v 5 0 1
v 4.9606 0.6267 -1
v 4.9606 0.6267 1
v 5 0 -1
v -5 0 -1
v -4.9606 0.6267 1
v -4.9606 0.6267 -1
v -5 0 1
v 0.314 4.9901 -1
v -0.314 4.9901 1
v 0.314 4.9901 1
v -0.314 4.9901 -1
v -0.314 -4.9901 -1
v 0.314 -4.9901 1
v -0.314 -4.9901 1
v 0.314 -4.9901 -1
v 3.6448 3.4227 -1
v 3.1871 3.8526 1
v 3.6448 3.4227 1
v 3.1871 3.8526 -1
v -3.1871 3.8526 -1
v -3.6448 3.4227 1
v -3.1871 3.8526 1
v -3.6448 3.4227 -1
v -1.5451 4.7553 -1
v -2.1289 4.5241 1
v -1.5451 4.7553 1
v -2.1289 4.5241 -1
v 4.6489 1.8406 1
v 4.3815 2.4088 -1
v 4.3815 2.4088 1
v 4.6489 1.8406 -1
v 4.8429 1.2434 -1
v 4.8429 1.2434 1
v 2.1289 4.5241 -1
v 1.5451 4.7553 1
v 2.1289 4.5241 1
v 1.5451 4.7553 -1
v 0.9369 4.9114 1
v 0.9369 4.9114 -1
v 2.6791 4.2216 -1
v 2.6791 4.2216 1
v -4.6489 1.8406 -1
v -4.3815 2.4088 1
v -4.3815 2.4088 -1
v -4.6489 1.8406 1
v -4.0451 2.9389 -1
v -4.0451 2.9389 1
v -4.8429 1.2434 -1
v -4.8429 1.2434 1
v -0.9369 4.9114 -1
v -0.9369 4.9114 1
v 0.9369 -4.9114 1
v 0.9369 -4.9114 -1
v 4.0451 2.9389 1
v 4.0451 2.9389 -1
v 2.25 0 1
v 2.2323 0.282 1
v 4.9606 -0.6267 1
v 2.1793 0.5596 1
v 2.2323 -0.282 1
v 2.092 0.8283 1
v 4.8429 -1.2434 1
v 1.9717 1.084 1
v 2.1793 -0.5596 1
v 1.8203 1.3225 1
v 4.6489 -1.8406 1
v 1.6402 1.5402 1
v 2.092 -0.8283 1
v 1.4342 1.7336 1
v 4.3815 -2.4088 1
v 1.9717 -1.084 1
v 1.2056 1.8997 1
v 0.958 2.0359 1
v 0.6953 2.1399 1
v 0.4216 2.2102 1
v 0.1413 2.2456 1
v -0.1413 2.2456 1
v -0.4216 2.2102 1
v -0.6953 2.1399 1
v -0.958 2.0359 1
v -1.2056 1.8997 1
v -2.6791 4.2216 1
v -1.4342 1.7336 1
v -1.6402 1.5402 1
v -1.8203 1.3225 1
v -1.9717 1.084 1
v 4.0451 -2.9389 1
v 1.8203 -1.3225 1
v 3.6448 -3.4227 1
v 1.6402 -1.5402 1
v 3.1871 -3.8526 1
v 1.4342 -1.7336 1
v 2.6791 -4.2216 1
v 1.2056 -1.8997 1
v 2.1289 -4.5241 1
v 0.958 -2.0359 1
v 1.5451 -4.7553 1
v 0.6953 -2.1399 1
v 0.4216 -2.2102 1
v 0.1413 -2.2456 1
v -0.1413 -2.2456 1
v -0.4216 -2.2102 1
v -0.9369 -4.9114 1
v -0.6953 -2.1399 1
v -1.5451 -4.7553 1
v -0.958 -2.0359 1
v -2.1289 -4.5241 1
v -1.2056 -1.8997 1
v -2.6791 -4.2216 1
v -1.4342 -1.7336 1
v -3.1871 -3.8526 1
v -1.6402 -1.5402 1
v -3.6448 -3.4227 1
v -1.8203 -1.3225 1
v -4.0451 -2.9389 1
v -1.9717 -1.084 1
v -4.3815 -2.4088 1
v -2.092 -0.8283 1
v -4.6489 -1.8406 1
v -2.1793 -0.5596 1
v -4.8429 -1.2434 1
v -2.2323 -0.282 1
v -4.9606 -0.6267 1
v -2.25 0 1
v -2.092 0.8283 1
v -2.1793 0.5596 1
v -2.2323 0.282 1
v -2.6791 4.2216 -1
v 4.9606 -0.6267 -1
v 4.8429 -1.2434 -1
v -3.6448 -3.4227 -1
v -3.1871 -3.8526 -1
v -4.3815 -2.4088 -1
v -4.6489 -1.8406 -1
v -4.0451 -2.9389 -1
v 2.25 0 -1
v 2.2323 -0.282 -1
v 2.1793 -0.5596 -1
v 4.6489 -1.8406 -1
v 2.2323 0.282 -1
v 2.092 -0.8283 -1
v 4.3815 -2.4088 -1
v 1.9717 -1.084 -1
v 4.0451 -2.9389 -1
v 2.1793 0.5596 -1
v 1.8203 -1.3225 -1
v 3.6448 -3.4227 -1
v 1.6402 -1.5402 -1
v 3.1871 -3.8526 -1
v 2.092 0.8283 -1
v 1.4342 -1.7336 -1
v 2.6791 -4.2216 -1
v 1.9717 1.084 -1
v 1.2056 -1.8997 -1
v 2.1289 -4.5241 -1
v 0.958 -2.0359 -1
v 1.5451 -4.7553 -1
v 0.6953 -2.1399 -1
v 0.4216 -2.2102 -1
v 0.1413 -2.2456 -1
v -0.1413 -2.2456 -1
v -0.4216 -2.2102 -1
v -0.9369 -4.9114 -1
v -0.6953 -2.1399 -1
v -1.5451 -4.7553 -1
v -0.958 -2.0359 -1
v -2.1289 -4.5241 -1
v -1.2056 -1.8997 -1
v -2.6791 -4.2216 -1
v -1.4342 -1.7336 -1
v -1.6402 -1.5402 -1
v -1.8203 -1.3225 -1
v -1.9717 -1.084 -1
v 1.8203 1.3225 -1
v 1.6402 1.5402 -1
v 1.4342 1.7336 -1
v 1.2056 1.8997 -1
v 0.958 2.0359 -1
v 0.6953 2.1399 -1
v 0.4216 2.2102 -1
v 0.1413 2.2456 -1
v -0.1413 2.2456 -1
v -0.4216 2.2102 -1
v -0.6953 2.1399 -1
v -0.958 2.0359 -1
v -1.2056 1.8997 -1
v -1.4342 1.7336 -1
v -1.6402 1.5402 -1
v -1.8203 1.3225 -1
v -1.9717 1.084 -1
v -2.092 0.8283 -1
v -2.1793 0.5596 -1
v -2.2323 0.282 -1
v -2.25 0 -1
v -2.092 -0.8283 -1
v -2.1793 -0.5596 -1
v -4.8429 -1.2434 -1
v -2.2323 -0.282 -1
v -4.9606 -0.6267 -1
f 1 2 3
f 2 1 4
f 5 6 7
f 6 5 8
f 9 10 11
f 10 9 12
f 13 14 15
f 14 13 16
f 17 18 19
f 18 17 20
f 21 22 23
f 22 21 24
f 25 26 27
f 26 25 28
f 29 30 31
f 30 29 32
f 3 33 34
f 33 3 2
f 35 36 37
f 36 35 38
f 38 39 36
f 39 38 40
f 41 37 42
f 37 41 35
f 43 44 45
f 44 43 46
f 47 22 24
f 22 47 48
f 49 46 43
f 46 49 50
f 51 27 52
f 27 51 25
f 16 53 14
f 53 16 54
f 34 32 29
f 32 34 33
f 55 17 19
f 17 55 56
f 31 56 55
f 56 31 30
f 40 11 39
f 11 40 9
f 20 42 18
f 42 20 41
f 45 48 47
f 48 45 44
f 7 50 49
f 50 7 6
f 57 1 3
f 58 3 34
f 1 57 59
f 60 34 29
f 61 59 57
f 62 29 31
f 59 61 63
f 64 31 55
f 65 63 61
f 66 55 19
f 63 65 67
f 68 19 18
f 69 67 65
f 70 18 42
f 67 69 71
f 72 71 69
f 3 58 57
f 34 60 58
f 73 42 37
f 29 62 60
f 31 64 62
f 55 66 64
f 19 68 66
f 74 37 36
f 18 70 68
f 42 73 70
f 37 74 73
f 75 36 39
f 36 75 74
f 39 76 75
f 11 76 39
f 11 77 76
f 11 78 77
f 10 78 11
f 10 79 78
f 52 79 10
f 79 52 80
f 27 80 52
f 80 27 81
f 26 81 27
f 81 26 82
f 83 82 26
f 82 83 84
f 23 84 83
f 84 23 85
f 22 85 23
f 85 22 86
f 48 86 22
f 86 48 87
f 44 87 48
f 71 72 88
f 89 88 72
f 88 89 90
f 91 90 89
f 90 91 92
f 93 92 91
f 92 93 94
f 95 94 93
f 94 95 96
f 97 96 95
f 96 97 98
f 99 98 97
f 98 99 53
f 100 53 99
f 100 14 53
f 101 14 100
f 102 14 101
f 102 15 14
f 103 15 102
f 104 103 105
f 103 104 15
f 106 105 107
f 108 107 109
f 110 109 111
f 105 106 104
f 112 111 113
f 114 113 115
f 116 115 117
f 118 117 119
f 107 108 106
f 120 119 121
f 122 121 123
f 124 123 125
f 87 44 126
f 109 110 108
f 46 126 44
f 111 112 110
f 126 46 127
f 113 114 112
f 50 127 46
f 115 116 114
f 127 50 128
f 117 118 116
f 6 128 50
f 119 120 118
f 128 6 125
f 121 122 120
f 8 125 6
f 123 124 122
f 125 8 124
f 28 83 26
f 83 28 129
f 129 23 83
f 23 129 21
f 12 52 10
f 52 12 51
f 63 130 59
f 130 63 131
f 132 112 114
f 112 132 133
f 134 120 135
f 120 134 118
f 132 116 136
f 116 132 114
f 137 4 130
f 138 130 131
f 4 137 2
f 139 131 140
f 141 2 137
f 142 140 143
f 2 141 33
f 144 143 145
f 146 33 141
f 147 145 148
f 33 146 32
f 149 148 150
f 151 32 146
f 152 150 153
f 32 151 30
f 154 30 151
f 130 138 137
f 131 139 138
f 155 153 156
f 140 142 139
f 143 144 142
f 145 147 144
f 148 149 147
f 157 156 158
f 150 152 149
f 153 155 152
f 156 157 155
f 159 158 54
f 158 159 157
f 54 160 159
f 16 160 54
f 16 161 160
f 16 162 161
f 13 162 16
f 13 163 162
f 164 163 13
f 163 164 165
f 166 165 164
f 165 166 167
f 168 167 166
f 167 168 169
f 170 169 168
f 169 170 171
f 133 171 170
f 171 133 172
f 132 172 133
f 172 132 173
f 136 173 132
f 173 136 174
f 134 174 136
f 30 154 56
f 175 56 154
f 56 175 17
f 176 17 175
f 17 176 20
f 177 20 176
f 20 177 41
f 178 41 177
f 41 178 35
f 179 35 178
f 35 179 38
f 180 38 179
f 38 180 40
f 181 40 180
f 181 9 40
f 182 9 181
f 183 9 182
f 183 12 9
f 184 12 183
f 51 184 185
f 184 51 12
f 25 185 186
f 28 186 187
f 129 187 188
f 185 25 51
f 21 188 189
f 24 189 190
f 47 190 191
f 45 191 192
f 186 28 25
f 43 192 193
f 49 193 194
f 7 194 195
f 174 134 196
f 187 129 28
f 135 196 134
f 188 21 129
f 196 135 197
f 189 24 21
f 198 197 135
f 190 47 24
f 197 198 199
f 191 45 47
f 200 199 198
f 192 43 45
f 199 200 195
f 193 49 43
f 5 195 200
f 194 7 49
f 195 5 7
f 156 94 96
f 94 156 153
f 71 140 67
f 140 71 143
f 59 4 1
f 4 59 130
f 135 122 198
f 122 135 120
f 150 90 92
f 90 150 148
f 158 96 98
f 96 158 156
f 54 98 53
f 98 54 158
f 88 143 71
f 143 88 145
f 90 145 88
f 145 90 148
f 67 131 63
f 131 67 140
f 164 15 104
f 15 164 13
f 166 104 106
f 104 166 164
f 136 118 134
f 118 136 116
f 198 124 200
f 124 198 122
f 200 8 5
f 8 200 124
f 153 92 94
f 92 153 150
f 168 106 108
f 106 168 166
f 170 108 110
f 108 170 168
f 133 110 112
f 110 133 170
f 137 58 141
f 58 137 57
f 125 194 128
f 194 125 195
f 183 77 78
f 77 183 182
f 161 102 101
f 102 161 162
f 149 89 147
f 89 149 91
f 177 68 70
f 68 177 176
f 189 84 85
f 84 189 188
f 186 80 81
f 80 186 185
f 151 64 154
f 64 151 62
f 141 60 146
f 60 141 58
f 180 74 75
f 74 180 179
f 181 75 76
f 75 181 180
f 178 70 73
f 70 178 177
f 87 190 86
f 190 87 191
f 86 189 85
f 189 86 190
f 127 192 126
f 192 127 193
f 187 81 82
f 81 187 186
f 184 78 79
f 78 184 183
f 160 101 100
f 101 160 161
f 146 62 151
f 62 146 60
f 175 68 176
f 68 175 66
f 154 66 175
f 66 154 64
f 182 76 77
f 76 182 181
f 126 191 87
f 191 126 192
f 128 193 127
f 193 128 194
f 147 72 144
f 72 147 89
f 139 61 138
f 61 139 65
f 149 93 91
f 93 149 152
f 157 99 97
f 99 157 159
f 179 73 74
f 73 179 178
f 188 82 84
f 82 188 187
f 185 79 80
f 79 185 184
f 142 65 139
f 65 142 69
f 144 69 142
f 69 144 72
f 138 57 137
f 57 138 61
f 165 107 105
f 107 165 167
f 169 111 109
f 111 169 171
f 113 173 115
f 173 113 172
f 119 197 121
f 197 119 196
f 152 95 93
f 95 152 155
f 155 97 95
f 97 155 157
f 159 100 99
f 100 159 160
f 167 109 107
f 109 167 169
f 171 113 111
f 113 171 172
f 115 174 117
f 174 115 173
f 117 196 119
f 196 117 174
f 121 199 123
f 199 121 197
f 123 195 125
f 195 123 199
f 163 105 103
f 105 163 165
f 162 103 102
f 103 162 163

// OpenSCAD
$fn = 50;


difference() {
	union() {
		translate(v = [0, 0, -1.0000000000]) {
			cylinder(h = 2, r = 5.0000000000);
		}
	}
	union() {
		translate(v = [0, 0, -100.0000000000]) {
			cylinder(h = 200, r = 2.2500000000);
		}
	}
}
